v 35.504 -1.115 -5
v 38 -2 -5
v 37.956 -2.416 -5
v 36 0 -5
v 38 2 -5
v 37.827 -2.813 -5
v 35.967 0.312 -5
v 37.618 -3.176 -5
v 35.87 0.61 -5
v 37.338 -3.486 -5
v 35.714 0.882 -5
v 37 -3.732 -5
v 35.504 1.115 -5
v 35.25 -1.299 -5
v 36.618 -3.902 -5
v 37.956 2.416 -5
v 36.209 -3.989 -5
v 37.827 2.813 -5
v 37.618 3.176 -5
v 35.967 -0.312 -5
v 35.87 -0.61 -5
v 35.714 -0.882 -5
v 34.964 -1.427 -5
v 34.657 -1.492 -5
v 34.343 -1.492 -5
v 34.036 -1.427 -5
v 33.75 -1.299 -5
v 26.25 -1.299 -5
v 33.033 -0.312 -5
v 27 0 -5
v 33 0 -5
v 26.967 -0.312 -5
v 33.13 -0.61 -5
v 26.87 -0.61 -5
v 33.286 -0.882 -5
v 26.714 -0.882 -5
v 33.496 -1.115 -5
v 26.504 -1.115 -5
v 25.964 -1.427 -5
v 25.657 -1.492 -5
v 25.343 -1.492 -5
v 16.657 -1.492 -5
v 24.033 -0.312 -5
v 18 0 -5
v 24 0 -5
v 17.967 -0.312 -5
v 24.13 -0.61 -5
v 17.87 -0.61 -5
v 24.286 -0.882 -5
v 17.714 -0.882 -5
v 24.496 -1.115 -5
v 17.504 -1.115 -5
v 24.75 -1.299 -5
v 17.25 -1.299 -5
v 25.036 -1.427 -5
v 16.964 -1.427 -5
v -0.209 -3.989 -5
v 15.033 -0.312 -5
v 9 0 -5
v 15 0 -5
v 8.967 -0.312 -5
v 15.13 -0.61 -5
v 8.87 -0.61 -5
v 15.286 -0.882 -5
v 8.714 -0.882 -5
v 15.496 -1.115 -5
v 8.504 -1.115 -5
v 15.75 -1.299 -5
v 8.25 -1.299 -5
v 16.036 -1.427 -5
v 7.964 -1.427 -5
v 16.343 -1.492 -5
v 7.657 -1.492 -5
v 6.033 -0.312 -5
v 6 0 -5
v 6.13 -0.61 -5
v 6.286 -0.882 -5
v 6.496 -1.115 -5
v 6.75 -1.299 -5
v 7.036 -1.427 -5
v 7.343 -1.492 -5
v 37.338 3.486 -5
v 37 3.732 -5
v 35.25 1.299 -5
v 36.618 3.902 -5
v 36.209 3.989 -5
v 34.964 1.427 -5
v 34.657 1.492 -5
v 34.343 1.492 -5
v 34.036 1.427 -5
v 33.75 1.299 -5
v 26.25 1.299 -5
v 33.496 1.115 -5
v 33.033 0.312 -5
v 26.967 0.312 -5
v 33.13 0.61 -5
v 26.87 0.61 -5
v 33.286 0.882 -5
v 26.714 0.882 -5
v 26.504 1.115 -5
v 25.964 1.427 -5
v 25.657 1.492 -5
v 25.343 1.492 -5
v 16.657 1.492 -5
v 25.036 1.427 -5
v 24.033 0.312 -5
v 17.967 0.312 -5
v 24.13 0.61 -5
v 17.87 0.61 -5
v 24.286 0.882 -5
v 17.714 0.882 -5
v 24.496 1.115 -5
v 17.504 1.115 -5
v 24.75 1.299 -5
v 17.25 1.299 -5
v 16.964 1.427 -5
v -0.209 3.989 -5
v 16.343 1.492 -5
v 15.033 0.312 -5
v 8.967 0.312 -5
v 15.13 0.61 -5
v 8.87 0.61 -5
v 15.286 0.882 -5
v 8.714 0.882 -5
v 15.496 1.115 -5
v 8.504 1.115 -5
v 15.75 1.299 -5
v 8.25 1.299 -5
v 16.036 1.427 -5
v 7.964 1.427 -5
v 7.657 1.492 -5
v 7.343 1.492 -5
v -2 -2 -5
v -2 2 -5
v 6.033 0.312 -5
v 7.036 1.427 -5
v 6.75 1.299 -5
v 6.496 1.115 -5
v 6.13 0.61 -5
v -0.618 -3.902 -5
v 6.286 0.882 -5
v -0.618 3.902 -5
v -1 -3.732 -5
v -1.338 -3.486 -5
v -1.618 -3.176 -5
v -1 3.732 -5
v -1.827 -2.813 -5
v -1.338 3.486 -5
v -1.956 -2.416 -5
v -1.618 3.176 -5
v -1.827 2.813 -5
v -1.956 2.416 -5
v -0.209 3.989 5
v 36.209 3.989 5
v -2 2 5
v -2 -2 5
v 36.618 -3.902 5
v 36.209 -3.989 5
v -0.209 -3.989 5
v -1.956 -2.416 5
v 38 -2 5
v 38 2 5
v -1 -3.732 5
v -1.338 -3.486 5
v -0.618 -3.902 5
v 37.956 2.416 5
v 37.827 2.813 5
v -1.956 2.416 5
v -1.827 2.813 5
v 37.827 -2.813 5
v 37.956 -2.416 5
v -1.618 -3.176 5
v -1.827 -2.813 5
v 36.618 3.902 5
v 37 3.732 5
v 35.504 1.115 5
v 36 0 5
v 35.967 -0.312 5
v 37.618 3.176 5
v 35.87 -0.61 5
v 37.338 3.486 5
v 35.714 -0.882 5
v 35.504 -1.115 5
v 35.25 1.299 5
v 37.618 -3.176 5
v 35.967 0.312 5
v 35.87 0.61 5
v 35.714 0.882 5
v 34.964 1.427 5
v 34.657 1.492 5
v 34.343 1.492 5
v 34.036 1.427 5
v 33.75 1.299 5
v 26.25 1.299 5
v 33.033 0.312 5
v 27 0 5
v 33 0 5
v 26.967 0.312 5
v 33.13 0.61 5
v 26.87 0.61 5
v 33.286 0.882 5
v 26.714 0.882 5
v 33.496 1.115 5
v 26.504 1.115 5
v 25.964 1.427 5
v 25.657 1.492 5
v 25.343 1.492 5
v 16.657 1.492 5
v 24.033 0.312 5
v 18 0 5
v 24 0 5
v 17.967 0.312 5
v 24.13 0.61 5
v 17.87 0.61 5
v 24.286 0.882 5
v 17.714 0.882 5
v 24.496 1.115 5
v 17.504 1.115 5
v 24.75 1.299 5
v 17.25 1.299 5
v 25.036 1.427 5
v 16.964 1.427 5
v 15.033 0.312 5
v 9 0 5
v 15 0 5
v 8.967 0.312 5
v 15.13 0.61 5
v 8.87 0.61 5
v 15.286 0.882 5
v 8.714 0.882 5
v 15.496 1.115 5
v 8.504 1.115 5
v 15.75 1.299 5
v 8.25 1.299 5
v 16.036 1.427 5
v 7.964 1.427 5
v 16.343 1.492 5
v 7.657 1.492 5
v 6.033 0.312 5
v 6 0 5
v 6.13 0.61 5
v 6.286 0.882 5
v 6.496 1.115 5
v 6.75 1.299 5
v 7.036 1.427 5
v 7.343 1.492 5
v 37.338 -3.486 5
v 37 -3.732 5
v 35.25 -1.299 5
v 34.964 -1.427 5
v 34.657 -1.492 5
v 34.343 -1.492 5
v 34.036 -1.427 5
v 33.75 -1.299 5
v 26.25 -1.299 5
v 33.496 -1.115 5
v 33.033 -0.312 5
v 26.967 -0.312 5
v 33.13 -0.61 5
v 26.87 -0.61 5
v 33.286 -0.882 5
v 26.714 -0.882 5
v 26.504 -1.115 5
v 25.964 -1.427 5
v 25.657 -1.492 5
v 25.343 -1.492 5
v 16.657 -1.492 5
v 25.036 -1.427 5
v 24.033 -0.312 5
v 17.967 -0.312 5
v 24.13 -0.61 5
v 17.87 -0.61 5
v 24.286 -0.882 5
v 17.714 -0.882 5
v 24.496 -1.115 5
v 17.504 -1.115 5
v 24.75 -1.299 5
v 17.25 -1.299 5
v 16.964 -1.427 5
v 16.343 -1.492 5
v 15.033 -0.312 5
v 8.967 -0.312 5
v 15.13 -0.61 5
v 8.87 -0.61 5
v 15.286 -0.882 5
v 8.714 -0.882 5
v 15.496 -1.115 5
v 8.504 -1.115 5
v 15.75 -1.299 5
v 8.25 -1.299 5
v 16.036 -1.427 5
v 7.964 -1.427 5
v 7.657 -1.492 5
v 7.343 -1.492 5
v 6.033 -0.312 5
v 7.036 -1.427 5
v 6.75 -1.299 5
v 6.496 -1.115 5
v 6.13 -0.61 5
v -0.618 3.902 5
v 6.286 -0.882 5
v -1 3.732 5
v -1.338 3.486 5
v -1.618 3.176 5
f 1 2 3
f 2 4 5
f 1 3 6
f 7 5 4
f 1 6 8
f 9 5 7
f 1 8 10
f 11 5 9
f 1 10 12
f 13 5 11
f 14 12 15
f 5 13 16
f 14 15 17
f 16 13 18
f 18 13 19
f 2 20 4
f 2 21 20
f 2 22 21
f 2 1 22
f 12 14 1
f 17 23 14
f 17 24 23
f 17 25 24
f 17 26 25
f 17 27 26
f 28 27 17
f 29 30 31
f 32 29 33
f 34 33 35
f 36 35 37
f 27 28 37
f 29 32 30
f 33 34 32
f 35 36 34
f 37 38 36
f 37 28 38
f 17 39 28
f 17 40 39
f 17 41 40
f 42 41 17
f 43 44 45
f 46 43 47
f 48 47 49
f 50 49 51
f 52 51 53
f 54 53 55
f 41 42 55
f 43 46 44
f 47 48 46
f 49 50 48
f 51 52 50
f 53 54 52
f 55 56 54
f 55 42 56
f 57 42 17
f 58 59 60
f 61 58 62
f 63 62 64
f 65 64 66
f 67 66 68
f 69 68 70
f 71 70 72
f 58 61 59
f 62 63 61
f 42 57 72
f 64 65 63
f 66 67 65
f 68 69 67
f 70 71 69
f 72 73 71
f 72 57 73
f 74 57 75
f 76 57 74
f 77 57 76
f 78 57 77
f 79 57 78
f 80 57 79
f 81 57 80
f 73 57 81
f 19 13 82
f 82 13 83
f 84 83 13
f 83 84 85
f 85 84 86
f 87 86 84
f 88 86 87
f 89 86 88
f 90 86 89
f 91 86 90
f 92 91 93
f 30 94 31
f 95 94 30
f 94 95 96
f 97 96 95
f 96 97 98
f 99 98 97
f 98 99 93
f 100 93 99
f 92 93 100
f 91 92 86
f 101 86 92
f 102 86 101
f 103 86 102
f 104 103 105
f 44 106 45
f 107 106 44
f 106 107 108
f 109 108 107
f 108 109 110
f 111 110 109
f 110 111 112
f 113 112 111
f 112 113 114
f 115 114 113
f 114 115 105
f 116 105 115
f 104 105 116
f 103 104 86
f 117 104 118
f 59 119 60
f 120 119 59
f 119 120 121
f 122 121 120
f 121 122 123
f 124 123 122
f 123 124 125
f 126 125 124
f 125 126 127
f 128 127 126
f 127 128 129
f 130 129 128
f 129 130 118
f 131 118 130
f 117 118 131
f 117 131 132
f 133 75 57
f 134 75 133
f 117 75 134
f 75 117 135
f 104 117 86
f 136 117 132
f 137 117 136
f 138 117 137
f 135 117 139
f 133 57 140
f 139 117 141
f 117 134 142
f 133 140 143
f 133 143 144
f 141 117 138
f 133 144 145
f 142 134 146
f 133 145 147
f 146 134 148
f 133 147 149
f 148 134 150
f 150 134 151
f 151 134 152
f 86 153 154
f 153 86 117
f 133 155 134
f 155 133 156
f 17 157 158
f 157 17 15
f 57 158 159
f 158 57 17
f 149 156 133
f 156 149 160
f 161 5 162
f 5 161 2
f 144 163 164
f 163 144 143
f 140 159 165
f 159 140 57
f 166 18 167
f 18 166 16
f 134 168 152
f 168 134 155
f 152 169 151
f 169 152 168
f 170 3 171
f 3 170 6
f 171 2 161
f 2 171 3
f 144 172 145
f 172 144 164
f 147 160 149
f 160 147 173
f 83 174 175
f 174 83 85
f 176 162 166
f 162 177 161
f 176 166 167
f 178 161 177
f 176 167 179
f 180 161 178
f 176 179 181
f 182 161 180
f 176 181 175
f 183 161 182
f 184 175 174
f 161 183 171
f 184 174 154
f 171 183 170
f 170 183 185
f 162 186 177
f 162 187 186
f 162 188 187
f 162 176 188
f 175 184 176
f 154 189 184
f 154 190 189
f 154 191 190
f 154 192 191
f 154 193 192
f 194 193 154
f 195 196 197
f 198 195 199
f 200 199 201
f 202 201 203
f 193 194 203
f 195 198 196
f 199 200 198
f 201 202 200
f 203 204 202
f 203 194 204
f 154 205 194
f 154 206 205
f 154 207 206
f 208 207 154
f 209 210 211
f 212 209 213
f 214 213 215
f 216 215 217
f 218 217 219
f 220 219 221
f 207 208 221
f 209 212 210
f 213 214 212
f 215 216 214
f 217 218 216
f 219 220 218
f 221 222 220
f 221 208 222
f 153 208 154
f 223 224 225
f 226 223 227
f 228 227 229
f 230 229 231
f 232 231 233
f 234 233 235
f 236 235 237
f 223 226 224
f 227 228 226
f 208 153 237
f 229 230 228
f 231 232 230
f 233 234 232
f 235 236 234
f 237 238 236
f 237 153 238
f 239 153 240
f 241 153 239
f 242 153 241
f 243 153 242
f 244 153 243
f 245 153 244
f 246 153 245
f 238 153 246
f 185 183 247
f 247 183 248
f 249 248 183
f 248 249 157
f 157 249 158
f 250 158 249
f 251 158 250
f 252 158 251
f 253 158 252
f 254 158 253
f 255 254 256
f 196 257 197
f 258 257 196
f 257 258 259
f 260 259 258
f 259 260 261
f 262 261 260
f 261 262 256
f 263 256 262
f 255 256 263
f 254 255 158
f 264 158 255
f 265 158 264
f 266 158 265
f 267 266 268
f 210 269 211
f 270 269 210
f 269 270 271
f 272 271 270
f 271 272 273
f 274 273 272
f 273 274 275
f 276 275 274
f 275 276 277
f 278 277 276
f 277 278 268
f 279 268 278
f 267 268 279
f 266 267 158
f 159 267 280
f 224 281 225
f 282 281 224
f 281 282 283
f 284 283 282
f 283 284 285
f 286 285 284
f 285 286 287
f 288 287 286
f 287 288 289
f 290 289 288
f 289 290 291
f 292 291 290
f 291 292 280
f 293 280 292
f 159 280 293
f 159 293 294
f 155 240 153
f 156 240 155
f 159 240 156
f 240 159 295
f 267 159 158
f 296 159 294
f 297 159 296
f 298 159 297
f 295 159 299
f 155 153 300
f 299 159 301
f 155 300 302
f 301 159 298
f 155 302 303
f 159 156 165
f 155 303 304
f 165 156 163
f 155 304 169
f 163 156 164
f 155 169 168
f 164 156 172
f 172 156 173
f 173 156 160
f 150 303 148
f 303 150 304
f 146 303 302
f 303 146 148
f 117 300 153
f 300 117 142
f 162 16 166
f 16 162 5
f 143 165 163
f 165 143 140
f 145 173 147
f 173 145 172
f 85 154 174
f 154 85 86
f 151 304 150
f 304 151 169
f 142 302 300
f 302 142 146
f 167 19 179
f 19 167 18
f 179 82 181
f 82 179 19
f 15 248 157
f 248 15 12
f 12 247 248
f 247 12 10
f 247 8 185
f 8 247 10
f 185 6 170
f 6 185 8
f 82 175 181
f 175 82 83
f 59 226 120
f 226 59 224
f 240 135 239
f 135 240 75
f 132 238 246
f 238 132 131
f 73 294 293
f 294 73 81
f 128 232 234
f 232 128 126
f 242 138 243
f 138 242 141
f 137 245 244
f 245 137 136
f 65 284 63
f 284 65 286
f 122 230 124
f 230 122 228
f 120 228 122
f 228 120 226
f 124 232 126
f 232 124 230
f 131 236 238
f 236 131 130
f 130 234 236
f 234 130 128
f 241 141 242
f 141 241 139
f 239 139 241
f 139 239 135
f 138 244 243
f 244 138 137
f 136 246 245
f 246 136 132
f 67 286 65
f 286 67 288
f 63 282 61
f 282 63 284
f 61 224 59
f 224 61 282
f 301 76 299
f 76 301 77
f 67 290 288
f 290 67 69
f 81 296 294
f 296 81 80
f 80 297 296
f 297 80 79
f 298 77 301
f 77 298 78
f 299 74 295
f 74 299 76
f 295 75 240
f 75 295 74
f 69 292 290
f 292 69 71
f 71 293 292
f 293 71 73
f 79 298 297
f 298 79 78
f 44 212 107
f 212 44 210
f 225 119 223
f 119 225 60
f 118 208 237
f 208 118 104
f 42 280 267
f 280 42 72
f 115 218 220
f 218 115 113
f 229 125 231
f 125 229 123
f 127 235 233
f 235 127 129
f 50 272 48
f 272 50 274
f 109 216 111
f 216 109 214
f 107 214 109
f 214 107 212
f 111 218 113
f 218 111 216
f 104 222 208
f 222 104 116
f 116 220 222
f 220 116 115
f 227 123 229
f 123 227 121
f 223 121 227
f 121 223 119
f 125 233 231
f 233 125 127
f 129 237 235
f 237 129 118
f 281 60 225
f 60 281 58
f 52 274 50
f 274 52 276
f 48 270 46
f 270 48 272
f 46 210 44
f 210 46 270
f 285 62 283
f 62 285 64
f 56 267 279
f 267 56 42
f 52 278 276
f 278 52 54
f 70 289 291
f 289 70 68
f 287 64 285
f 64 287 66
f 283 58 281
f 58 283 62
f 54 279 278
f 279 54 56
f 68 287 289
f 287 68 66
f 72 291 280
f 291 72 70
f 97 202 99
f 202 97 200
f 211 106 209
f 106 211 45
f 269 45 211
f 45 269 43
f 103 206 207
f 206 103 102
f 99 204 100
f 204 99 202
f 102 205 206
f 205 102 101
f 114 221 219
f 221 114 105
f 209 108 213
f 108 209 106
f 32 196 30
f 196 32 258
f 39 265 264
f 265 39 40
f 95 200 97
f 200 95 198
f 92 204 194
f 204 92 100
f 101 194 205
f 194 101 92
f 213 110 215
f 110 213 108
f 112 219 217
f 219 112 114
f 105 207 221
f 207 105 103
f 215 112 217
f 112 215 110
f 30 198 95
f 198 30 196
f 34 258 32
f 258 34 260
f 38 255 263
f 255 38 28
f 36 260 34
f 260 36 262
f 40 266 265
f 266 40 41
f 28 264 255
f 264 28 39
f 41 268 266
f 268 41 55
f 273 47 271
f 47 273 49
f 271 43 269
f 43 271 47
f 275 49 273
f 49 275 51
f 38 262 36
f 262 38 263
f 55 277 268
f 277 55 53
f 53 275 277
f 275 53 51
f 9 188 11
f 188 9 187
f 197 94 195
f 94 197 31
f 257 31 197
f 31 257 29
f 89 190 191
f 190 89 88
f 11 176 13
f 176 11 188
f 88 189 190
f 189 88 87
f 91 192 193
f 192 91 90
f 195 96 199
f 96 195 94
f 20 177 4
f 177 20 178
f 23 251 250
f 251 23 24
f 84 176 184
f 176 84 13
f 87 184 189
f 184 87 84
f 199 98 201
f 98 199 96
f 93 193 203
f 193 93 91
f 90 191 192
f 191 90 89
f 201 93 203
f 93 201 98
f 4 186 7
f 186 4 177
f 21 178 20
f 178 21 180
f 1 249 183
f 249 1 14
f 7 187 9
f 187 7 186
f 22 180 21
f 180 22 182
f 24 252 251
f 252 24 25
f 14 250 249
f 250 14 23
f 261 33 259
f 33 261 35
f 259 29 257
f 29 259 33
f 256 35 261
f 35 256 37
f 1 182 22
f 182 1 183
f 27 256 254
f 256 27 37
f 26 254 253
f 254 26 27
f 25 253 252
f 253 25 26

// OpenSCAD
$fn=30;
height=10;
radius=2;
difference(){
    hull(){
        translate([0,-2,0])cylinder(r=radius,h=height, center=true);
        translate([36,2,0])cylinder(r=radius,h=height, center=true);
        translate([0,2,0])cylinder(r=radius,h=height, center=true);
        translate([36,-2,0])cylinder(r=radius,h=height, center=true);
  }
    translate([7.5,0,0])cylinder(d=radius/0.6666666667,h=height*10, center=true);
    translate([16.5,0,0])cylinder(d=radius/0.6666666667,h=height*10, center=true);
    translate([25.5,0,0])cylinder(d=radius/0.6666666667,h=height*10, center=true);
    translate([34.5,0,0])cylinder(d=radius/0.6666666667,h=height*10, center=true);
}
